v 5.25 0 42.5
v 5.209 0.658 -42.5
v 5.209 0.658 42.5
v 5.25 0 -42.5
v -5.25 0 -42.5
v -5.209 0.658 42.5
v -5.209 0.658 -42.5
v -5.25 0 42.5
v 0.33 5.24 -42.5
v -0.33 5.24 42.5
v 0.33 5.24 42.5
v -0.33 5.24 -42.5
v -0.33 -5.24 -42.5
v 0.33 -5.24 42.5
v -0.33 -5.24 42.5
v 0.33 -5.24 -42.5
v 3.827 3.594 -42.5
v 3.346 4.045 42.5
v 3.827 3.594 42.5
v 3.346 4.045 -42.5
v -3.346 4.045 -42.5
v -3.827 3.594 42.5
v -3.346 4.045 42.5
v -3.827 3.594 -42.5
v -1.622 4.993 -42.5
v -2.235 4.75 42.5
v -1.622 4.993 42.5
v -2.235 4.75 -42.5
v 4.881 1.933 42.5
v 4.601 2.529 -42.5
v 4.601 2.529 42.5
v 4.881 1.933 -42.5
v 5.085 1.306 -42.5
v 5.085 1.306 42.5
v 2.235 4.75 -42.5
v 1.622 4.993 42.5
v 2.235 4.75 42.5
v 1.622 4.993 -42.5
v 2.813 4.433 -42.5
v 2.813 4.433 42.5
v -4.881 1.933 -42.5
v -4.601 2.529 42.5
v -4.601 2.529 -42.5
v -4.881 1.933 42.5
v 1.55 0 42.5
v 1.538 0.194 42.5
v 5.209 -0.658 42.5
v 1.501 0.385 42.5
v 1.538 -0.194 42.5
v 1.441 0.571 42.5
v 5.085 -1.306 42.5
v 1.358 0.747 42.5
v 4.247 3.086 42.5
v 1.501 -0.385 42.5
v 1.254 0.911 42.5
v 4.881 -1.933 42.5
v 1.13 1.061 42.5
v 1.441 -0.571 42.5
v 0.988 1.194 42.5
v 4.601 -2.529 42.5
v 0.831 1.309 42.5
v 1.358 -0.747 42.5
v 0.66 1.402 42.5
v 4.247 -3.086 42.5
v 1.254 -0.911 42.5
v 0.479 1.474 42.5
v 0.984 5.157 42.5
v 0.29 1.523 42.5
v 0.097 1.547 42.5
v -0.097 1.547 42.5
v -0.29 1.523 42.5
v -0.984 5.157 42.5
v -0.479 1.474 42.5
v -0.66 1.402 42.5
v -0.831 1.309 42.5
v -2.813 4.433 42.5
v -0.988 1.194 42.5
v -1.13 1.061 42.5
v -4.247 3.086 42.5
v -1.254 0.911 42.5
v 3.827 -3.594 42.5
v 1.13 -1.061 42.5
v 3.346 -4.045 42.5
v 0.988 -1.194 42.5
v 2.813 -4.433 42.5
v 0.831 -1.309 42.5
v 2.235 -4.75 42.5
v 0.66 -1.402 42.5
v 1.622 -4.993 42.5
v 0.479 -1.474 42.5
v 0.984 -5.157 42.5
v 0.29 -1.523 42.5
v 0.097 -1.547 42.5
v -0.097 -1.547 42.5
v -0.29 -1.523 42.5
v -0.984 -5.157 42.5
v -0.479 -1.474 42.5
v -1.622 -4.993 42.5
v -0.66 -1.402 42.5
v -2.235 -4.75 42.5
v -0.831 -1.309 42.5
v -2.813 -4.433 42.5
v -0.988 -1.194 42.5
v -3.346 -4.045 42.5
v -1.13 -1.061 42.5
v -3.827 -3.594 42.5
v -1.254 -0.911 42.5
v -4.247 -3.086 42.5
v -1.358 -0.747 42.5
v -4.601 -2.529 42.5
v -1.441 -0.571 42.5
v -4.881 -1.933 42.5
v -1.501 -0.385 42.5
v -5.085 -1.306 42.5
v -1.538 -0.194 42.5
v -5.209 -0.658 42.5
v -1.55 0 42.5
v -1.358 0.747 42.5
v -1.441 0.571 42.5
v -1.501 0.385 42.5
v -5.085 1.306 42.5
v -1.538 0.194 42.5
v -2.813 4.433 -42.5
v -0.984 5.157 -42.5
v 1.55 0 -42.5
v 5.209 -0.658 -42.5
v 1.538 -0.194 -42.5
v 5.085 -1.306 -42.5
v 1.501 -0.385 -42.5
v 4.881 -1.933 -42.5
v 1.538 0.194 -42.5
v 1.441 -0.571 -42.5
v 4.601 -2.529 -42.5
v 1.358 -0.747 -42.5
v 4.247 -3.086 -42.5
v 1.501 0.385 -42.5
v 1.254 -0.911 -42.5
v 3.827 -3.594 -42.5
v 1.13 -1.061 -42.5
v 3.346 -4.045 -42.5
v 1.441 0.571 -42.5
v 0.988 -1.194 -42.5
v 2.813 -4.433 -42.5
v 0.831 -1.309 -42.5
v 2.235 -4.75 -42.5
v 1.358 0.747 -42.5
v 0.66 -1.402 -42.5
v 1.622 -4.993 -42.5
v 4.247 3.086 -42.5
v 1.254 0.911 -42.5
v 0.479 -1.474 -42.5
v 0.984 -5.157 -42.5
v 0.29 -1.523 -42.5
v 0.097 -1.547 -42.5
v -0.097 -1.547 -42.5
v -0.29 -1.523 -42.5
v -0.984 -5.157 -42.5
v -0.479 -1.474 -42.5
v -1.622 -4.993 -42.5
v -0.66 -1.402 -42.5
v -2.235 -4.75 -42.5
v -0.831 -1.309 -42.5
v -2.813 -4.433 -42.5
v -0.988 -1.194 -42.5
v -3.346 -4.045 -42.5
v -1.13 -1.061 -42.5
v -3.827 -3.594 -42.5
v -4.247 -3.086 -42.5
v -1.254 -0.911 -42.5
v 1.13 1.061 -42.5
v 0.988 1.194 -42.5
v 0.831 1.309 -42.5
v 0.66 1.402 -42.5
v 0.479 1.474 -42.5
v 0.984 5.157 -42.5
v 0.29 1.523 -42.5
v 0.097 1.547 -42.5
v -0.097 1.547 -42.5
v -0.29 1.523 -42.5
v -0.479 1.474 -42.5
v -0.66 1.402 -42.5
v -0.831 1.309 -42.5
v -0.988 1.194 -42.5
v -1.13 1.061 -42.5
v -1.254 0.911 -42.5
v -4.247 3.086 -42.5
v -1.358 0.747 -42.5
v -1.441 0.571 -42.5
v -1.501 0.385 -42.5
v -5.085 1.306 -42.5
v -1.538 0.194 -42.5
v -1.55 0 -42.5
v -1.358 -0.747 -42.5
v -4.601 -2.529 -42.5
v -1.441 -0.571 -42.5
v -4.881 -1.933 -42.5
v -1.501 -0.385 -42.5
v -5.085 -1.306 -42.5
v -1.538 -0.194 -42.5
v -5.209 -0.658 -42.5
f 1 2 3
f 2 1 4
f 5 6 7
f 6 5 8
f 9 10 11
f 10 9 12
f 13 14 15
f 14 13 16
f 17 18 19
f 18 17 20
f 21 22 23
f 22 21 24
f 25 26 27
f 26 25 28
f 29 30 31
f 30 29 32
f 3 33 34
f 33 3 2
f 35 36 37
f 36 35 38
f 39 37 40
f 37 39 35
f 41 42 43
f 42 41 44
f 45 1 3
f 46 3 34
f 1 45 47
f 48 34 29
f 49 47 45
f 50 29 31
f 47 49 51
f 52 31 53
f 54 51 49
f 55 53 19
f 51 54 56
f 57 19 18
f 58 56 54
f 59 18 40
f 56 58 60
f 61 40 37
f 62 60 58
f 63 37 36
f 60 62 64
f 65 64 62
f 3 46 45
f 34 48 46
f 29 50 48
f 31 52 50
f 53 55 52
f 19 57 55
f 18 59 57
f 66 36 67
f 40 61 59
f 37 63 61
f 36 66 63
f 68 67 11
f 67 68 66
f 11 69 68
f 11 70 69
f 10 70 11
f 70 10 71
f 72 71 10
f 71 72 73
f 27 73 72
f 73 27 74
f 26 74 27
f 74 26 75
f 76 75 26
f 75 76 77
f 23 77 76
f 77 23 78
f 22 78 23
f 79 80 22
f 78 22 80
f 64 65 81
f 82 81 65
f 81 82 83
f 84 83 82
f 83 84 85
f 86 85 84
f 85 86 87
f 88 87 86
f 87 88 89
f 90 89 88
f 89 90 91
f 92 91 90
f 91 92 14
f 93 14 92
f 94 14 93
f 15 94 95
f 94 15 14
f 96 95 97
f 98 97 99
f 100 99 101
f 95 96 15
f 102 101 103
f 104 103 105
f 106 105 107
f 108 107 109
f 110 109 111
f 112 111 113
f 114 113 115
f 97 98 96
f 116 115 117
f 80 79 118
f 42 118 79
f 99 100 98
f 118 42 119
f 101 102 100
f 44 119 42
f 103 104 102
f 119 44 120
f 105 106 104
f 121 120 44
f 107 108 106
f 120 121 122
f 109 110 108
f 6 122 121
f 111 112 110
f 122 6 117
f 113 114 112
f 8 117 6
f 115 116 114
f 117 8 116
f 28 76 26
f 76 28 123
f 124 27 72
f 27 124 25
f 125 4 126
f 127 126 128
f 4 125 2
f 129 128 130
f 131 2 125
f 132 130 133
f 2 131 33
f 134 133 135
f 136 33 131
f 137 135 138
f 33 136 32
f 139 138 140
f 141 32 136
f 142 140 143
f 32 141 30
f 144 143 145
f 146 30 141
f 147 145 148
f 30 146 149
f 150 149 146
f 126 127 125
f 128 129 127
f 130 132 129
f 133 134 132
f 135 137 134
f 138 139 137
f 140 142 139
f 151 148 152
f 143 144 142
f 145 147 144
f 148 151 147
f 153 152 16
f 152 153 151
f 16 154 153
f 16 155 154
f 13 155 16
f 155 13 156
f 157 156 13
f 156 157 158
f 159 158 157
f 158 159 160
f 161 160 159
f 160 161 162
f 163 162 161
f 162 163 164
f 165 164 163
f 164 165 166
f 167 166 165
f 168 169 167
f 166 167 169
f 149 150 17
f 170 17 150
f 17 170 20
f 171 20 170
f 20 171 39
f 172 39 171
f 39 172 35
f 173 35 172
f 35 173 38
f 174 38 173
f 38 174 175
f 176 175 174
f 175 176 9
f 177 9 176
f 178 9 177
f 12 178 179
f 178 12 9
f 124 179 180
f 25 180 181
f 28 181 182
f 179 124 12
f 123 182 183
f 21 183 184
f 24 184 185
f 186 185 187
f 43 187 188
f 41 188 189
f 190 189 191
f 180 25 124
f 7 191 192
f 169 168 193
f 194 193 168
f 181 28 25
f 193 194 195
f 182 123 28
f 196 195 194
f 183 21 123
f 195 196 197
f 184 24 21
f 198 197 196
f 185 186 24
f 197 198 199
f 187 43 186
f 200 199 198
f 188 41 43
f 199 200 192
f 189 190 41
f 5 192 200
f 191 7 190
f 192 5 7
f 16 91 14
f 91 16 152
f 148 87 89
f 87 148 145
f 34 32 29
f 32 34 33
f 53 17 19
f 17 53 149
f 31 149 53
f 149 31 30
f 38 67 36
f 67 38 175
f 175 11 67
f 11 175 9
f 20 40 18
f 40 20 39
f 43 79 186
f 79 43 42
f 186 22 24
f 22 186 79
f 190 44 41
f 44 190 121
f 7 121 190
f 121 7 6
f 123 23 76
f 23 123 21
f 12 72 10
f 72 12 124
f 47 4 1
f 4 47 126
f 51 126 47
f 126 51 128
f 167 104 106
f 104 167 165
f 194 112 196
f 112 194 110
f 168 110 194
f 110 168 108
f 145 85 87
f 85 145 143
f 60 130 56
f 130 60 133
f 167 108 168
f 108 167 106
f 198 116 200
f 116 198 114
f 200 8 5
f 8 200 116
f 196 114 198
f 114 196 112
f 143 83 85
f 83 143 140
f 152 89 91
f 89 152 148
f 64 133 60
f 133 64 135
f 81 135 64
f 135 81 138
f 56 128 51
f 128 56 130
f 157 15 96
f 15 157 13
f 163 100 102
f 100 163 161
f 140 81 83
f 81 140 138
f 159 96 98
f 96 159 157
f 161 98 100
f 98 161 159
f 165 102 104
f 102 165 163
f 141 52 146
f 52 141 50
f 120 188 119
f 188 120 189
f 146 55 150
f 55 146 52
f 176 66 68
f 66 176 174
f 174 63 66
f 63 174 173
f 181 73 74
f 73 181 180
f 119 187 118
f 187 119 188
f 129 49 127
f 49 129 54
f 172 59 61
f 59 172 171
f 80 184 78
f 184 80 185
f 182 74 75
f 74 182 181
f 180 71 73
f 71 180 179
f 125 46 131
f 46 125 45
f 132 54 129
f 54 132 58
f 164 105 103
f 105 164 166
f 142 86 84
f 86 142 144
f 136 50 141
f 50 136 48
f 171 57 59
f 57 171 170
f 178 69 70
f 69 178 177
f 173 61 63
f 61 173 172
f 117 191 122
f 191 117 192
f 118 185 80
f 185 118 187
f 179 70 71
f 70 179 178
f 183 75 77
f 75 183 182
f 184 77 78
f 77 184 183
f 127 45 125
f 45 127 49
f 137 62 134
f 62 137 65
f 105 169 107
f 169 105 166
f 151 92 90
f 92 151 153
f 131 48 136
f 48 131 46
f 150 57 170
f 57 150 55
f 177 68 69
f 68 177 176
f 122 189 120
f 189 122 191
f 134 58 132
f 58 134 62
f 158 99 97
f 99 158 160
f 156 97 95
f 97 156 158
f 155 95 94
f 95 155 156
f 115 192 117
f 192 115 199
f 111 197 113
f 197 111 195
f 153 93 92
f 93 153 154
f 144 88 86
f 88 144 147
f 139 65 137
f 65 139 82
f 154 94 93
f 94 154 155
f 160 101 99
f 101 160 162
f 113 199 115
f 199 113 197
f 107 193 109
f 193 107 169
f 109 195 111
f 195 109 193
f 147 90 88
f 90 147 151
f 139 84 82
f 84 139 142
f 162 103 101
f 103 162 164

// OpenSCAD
$fn = 50;


difference() {
	union() {
		translate(v = [0, 0, -42.5000000000]) {
			cylinder(h = 85, r = 5.2500000000);
		}
	}
	union() {
		translate(v = [0, 0, -100.0000000000]) {
			cylinder(h = 200, r = 1.5500000000);
		}
	}
}
